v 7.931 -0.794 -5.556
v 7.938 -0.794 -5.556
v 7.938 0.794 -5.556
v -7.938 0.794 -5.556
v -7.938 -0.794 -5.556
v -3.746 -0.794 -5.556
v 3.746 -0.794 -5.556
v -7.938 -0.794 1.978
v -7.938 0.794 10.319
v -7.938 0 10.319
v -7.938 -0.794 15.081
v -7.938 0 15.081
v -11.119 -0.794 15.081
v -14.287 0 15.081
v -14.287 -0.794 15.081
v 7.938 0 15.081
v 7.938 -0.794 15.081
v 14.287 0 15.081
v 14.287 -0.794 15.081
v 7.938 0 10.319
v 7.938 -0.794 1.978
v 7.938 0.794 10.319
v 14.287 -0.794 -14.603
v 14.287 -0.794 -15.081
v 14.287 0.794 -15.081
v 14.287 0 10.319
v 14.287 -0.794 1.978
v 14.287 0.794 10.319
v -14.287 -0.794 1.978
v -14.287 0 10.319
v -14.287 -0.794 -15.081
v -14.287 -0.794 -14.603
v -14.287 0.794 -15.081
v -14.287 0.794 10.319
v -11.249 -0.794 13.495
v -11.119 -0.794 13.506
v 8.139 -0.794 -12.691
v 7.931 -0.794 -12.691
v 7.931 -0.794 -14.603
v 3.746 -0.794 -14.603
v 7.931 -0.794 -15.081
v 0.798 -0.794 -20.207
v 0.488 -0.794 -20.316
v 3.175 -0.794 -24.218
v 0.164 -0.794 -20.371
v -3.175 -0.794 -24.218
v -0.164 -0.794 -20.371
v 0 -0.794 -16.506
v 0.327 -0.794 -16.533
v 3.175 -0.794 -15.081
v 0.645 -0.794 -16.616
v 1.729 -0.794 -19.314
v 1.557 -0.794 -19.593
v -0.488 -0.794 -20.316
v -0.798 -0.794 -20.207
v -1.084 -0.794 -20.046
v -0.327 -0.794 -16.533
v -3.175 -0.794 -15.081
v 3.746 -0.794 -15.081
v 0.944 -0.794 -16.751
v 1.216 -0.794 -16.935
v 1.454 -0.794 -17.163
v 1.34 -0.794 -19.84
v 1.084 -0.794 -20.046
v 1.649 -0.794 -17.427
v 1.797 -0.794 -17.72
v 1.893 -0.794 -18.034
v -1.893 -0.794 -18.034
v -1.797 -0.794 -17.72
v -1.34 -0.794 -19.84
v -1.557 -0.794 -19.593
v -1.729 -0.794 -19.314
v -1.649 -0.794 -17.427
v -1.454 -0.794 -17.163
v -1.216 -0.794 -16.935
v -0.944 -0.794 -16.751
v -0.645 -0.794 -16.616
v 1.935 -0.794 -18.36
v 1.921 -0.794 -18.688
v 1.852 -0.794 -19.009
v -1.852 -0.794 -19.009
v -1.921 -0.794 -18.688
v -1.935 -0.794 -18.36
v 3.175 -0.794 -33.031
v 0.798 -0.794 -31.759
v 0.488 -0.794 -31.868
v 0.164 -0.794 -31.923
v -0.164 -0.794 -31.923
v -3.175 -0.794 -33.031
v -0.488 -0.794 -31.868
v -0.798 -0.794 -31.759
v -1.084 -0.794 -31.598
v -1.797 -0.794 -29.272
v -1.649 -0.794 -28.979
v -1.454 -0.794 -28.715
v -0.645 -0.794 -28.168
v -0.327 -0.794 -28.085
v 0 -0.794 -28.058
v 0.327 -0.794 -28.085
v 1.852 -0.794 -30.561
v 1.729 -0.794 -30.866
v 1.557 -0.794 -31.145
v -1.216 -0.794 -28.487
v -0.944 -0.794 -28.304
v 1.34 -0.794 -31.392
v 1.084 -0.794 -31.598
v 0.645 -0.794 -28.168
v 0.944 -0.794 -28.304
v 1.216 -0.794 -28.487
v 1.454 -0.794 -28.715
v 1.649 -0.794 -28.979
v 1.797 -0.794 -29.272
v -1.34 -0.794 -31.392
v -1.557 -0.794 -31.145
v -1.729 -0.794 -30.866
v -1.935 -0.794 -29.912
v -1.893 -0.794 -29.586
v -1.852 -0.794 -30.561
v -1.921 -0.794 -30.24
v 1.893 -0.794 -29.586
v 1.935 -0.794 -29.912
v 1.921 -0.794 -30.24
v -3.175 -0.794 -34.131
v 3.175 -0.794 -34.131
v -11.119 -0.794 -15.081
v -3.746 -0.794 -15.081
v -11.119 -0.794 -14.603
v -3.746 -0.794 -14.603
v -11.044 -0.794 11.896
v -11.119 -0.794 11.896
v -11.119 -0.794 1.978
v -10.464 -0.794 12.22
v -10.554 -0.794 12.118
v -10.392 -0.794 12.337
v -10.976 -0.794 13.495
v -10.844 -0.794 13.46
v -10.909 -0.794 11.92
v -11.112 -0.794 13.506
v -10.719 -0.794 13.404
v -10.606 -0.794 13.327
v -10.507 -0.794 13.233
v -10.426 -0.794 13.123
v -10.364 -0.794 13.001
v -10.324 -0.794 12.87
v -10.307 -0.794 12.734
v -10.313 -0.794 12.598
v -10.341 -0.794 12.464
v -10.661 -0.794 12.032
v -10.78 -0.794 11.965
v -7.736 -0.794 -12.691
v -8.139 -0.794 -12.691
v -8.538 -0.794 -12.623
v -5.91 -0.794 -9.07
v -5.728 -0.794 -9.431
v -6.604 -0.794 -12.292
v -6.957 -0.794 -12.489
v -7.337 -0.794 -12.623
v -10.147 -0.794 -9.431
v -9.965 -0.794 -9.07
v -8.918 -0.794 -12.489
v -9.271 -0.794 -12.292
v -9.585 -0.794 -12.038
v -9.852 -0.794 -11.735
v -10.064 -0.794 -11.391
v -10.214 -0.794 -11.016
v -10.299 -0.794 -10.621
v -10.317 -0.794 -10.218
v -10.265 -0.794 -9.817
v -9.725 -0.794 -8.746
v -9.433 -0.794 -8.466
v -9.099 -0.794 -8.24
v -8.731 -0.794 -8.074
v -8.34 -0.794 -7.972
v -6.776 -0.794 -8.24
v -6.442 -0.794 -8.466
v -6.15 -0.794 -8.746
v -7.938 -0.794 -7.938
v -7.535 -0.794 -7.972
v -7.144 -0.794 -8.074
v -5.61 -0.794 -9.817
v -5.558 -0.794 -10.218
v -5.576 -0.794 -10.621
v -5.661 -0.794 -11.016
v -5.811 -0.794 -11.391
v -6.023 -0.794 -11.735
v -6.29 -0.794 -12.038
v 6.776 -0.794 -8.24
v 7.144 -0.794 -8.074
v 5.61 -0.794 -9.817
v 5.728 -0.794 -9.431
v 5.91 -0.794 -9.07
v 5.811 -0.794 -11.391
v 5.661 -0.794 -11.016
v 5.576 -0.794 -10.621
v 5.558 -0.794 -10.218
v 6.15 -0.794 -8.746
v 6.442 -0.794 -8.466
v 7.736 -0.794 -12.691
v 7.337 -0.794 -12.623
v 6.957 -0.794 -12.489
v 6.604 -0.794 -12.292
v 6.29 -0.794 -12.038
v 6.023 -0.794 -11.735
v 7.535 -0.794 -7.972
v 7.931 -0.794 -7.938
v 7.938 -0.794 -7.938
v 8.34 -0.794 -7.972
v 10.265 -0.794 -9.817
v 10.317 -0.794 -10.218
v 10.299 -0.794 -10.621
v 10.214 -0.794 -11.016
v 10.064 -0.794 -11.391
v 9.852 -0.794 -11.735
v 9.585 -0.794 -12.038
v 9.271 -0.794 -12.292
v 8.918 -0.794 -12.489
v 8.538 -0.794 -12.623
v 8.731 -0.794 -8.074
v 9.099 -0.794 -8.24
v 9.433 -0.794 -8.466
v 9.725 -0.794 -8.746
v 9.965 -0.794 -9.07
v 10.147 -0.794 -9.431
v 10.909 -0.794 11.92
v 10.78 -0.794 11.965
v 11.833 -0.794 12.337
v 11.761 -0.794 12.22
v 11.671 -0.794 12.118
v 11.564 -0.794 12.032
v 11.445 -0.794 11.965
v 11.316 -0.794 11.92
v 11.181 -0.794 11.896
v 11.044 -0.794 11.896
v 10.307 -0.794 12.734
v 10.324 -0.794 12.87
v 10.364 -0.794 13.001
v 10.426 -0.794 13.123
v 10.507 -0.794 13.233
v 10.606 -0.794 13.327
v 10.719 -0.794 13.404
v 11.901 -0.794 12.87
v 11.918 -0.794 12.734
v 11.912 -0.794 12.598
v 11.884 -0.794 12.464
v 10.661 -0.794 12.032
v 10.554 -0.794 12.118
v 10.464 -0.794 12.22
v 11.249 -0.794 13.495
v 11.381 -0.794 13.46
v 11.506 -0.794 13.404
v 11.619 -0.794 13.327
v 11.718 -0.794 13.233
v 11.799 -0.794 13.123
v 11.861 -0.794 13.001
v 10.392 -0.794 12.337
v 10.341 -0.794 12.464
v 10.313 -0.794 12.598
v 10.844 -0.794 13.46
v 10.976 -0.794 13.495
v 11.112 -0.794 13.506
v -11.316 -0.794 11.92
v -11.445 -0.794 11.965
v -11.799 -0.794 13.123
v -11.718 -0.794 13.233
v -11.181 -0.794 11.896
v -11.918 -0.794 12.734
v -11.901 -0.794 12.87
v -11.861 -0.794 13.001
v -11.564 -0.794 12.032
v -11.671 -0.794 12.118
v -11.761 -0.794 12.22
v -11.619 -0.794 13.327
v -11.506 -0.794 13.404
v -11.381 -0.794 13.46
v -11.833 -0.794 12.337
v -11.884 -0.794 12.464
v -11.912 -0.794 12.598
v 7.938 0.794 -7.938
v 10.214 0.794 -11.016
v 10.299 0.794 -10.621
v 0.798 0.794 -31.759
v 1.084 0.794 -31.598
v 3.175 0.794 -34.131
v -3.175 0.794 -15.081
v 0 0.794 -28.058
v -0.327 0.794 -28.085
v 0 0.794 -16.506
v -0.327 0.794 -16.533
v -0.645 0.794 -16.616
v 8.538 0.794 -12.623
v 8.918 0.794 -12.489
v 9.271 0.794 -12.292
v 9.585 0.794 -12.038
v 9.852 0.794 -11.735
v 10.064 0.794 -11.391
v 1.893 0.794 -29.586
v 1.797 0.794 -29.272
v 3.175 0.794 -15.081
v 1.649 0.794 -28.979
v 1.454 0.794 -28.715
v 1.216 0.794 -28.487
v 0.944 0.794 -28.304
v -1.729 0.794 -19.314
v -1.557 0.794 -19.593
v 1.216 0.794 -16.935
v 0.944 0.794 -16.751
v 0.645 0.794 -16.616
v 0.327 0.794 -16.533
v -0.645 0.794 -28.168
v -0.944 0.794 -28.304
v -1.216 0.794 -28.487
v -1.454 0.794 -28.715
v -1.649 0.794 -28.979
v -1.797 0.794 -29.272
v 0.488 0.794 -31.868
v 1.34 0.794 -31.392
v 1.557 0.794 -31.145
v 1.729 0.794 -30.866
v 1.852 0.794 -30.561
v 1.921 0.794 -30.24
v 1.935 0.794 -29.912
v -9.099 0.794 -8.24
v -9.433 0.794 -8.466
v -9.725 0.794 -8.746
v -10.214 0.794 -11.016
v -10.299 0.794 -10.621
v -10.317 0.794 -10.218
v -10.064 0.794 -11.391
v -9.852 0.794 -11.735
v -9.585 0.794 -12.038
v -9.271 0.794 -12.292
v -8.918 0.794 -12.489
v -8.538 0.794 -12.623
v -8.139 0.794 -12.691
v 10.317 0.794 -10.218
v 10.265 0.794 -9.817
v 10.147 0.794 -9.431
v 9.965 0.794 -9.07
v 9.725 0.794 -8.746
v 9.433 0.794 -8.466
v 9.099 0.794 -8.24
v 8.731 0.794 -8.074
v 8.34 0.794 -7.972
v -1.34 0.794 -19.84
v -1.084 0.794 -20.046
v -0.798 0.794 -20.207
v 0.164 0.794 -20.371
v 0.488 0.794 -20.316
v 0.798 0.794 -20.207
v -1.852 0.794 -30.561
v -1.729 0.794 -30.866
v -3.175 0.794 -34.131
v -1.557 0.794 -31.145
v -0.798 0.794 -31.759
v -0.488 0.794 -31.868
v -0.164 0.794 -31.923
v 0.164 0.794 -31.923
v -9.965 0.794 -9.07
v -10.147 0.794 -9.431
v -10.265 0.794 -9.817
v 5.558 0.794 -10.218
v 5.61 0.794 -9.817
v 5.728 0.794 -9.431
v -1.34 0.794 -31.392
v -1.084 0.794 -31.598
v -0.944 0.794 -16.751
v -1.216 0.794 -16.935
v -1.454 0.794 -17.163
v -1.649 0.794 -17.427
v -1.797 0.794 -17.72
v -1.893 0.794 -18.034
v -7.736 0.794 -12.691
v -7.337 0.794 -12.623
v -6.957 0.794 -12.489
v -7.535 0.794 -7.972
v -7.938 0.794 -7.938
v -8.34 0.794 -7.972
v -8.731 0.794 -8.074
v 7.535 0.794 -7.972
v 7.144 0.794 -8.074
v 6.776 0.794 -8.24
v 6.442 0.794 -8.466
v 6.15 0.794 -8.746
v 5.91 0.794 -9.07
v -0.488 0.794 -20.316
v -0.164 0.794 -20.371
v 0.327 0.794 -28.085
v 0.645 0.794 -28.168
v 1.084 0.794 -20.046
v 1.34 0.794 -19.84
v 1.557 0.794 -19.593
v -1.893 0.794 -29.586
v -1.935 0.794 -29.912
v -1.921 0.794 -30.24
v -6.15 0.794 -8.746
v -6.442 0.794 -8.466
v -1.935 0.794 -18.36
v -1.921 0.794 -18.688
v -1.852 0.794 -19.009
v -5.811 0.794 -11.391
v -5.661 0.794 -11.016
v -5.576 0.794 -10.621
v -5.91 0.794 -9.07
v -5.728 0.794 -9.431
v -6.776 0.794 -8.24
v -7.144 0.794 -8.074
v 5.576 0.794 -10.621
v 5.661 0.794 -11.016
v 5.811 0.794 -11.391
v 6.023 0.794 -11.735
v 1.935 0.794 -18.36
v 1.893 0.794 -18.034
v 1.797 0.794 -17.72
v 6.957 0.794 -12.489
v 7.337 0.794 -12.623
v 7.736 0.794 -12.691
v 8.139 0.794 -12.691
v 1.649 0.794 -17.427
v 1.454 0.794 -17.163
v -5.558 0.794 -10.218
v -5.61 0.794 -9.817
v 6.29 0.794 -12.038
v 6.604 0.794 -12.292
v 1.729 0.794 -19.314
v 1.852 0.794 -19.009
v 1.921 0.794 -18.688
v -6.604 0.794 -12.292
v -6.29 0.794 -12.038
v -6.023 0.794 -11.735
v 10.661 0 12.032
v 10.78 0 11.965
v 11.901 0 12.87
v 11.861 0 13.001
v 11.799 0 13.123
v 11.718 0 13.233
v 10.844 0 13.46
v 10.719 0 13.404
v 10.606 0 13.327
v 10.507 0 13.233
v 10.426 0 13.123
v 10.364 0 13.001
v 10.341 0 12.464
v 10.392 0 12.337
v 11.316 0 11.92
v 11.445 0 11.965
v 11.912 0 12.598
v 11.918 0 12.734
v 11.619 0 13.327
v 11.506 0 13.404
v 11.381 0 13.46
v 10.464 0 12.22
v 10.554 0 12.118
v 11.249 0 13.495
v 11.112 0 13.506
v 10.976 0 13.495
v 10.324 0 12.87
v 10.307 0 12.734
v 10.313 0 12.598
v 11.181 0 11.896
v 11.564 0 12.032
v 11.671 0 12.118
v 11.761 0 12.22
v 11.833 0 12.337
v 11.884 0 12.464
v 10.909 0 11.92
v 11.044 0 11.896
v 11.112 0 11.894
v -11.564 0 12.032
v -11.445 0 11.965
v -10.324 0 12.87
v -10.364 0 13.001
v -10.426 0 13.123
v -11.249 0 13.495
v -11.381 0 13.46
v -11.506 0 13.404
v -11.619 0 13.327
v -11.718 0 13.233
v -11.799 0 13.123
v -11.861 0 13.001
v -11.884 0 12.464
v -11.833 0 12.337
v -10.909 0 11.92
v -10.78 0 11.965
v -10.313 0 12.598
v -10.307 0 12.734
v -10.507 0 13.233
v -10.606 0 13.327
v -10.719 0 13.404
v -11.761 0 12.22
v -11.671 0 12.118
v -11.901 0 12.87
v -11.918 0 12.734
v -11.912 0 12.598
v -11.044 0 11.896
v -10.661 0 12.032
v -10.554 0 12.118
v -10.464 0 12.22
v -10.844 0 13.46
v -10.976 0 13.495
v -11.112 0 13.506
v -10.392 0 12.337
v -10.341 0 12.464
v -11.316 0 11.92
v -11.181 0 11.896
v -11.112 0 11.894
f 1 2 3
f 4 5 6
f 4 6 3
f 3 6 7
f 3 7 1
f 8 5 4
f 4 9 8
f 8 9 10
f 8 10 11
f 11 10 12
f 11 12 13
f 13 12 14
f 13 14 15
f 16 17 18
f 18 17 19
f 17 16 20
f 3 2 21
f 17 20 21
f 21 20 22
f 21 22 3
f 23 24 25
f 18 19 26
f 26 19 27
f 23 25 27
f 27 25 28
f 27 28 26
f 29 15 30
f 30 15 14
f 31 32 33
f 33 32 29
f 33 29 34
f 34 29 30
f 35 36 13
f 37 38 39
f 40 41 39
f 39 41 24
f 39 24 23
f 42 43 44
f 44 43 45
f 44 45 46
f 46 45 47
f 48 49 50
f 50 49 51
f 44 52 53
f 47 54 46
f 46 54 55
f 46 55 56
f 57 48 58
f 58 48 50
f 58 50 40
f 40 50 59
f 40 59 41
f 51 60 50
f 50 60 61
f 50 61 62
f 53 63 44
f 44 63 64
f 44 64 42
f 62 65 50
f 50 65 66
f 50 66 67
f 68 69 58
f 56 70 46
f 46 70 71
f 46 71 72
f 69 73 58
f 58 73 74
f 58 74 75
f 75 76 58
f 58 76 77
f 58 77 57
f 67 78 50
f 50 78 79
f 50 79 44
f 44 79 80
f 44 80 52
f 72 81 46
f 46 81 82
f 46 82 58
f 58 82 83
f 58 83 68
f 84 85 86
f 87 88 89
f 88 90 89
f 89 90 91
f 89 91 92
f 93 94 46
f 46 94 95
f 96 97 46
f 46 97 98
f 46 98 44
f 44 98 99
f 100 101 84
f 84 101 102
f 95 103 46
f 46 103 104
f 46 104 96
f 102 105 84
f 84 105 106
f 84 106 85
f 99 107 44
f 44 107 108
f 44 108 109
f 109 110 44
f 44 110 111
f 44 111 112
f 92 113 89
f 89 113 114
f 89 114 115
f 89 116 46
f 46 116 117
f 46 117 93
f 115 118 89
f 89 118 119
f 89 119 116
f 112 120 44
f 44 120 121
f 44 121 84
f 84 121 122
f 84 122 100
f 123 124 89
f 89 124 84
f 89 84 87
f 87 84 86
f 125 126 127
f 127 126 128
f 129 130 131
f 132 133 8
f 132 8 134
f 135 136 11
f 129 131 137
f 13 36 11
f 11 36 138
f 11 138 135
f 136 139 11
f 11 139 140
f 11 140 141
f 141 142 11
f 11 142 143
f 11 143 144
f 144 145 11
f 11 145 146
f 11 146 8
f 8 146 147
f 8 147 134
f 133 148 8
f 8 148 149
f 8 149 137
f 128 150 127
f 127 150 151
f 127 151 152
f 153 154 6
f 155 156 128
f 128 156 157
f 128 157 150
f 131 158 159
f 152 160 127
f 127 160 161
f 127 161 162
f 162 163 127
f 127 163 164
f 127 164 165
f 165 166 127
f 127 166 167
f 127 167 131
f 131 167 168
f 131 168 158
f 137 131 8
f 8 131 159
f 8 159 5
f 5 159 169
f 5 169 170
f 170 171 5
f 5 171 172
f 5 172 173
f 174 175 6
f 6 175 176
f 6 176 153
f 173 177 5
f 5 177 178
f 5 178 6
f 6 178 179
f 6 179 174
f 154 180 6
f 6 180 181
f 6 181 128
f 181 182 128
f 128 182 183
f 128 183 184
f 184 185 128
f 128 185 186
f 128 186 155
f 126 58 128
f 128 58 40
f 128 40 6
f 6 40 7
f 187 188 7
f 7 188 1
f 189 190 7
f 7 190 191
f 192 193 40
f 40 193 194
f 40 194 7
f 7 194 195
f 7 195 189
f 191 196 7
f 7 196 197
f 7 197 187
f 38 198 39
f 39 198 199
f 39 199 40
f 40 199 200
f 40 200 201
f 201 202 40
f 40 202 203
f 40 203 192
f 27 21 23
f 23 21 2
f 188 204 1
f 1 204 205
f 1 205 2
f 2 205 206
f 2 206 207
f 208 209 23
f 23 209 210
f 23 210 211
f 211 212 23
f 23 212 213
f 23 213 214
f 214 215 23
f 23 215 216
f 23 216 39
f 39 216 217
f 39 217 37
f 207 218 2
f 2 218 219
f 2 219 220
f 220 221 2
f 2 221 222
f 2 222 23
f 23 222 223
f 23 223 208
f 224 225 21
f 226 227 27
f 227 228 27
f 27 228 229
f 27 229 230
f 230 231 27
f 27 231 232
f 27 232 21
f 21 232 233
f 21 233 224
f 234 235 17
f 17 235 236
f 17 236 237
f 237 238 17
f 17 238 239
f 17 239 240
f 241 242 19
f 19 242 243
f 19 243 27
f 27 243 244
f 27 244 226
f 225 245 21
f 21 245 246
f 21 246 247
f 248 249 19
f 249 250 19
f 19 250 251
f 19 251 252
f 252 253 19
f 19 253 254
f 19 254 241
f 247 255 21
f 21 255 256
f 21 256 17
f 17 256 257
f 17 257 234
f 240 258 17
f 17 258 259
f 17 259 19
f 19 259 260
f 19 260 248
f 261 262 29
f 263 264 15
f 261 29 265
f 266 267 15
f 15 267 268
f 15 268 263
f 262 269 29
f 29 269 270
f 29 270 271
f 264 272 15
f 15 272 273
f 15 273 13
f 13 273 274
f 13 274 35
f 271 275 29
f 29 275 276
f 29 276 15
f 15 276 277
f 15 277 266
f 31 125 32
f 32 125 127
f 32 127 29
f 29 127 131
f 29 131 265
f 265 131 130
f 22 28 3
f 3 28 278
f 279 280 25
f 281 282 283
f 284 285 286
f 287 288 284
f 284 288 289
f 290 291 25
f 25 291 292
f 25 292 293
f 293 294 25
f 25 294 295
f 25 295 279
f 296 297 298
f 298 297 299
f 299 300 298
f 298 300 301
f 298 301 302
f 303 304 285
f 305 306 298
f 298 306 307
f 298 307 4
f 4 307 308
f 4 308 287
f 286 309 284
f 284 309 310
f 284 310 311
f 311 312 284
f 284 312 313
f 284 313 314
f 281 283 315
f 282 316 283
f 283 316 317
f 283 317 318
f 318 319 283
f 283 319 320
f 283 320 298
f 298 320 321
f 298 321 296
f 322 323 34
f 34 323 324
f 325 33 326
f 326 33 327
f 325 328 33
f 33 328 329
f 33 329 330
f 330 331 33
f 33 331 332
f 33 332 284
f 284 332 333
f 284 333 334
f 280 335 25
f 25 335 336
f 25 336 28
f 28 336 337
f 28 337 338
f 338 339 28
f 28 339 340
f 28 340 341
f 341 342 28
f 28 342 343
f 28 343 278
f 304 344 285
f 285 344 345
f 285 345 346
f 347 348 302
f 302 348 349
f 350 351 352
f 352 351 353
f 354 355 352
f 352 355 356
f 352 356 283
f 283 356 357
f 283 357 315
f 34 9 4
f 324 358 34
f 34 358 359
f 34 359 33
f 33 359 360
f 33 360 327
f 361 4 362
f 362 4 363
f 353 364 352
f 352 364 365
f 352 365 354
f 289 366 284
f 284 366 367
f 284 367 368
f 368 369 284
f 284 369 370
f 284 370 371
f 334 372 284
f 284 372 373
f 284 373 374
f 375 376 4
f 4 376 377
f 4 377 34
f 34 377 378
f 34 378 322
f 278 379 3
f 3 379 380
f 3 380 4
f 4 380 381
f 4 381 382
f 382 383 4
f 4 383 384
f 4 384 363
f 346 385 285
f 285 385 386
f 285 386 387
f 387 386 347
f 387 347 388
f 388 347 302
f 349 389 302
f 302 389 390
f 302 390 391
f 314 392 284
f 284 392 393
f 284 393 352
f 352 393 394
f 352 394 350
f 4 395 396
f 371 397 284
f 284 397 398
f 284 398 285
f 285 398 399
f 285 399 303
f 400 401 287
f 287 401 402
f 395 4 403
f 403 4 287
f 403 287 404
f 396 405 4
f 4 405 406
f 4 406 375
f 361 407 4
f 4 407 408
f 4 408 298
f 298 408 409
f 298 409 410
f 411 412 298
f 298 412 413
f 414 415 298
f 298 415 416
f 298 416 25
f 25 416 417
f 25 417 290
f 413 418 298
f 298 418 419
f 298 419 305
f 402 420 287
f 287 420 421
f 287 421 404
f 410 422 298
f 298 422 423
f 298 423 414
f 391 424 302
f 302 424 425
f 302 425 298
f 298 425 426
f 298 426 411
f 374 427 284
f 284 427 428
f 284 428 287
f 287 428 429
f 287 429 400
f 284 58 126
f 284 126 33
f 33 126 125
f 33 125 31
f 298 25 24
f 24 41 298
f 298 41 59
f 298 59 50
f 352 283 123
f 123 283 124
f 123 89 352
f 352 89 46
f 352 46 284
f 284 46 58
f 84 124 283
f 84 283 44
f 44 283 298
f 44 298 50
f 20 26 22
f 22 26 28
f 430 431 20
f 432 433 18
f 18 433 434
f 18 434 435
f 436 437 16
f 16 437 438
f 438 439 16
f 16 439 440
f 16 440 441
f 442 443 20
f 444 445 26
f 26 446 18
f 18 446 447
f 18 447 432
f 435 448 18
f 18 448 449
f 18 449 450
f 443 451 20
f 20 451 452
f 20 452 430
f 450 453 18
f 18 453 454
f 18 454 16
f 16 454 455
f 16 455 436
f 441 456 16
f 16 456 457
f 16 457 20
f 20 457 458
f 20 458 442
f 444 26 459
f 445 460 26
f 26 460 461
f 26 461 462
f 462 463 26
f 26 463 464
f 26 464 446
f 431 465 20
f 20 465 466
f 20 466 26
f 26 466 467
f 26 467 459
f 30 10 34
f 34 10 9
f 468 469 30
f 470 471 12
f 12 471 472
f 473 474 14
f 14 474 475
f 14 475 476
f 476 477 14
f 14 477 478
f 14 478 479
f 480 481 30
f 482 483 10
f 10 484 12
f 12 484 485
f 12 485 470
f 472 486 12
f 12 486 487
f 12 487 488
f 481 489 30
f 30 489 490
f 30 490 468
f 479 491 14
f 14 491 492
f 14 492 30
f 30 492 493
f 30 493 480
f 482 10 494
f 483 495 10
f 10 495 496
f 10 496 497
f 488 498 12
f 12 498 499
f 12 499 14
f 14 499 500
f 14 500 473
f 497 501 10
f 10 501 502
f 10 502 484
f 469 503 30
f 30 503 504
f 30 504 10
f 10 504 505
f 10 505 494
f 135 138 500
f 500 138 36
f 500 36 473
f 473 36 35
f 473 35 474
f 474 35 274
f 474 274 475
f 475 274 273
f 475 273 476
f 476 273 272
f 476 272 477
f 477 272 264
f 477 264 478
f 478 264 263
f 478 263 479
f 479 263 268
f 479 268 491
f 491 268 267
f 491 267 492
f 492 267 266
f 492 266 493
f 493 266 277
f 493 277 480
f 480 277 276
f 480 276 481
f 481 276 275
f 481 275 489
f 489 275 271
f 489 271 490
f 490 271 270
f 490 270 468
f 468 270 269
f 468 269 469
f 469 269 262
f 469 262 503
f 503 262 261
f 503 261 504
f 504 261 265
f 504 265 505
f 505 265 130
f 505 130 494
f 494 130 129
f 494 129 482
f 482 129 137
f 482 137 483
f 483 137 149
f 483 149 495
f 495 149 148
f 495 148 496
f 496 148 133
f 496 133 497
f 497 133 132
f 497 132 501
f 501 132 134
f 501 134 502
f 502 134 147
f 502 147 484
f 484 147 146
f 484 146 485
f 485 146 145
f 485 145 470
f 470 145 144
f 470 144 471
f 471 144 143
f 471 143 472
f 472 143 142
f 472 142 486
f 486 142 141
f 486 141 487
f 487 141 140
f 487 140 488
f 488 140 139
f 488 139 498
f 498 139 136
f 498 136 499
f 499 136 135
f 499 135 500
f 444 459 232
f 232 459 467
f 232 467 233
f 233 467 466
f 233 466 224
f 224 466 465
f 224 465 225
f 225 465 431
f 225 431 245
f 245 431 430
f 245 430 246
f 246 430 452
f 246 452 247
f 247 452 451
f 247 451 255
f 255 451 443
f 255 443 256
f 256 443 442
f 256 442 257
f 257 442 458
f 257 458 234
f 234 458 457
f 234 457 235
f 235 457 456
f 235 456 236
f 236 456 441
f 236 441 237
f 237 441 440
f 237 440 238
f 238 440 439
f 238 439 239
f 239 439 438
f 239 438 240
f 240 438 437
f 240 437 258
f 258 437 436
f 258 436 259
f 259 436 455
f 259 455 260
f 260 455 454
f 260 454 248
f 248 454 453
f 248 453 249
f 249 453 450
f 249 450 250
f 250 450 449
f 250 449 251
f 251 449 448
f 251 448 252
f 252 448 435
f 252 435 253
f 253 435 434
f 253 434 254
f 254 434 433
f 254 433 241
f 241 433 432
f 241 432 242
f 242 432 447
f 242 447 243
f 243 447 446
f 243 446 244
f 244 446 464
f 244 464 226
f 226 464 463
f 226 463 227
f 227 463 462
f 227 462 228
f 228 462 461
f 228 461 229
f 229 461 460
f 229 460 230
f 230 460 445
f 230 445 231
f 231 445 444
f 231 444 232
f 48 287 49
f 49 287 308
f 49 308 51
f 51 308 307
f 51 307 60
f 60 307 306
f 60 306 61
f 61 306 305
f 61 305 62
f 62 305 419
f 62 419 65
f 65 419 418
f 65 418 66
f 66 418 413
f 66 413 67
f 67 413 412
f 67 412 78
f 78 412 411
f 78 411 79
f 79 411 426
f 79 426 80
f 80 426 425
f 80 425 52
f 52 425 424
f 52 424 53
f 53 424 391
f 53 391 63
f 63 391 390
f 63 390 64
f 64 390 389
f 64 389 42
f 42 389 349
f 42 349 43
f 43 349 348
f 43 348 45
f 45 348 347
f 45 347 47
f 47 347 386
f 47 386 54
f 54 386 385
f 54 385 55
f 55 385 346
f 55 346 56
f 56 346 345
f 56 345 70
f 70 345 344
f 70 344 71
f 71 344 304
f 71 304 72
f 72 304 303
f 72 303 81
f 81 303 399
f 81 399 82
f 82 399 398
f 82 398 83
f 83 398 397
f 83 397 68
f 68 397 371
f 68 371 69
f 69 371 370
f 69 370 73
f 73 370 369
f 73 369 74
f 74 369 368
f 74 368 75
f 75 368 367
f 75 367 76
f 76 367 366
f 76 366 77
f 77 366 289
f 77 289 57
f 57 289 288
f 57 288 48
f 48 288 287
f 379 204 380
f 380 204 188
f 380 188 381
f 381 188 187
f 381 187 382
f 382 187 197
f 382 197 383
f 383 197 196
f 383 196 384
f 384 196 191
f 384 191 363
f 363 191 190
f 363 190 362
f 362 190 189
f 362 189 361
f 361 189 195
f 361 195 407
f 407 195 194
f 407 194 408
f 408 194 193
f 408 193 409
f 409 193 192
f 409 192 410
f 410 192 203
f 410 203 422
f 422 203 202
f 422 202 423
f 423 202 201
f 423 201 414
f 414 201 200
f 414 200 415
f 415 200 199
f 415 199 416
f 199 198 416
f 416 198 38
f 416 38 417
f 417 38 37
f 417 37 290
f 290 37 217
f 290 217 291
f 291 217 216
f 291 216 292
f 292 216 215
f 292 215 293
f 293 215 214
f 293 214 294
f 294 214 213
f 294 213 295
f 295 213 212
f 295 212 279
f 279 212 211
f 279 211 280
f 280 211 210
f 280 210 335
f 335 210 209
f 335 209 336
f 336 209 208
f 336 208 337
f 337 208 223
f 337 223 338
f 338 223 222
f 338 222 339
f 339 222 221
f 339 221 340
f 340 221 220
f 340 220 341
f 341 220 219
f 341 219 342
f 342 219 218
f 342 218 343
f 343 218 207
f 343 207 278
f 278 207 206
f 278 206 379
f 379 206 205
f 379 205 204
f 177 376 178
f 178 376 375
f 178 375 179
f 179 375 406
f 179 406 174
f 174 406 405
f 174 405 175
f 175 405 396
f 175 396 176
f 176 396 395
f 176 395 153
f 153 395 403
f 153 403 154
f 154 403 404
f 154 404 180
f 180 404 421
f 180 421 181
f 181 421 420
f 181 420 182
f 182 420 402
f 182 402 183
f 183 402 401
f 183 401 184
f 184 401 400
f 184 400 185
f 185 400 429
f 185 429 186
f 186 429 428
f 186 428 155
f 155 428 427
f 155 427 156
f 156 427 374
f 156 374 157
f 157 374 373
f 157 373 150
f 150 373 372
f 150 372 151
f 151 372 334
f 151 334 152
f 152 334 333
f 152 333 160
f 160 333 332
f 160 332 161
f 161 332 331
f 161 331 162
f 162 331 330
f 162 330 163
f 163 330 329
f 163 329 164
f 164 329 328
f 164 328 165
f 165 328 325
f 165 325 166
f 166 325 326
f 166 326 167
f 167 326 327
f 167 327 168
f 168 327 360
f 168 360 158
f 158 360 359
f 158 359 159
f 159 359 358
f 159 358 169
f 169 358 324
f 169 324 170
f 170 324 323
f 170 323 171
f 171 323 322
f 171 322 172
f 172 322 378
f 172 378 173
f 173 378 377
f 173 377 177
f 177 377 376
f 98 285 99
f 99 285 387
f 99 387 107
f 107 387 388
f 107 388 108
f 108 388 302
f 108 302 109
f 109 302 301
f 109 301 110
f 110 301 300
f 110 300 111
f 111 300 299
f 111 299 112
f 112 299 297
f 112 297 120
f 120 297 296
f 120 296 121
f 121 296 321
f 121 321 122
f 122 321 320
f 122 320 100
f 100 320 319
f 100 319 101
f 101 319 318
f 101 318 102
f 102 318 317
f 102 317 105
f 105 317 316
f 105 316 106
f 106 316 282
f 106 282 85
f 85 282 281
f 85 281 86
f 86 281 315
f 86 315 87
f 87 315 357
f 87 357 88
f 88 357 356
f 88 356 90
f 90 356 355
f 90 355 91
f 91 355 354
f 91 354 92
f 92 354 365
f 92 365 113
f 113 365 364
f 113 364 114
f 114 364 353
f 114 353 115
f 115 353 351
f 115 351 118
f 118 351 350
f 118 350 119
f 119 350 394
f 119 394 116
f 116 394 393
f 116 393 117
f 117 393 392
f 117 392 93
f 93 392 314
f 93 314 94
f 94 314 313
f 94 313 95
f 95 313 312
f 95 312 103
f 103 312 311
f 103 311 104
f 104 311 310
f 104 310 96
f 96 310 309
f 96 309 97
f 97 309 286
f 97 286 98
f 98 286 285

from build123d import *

# Parameters (mm, degrees)
SKETCH1_W           = 6.35
SKETCH1_H           = 19.05
BOSS_EXTRUDE1_DEPTH = 0.79375
SKETCH2_W           = 6.35
SKETCH2_H           = 4.7625
CUT_EXTRUDE1_DEPTH  = 0.79375
SKETCH3_R           = 0.80645
SKETCH3_R_2         = 2.38125
SKETCH3_R_3         = 1.936420783
CUT_EXTRUDE2_DEPTH  = 1.5875


with BuildPart() as part:
    # Sketch1 → Boss-Extrude1 (new, symmetric)
    with BuildSketch(Plane(origin=(0, 0, 0), x_dir=(1, 0, 0), z_dir=(0, 1, 0))):
        Polygon((-3.175, 15.08125), (-14.2875, 15.08125), (-14.2875, -15.08125), (-7.9375, -15.08125), (-7.9375, 5.55625), (7.9375, 5.55625), (7.9375, -15.08125), (14.2875, -15.08125), (14.2875, 15.08125), (3.175, 15.08125), align=None)
        with Locations((0, 24.60625)):
            Rectangle(SKETCH1_W, SKETCH1_H)
    extrude(amount=BOSS_EXTRUDE1_DEPTH, both=True)

    # Sketch2 → Cut-Extrude1 (cut)
    with BuildSketch(Plane(origin=(0, 0.79375, 0), x_dir=(1, 0, 0), z_dir=(0, 1, 0))):
        with Locations((-11.1125, -12.7)):
            Rectangle(SKETCH2_W, SKETCH2_H)
        with Locations((11.1125, -12.7)):
            Rectangle(SKETCH2_W, SKETCH2_H)
    extrude(amount=-CUT_EXTRUDE1_DEPTH, mode=Mode.SUBTRACT)

    # Sketch3 → Cut-Extrude2 (cut)
    with BuildSketch(Plane(origin=(0, 0.79375, 0), x_dir=(1, 0, 0), z_dir=(0, 1, 0))):
        with Locations(Location((-11.1125, -12.7, 0), (0, 0, 270))):
            Circle(SKETCH3_R)
        with Locations(Location((-7.9375, 10.31875, 0), (0, 0, 270))):
            Circle(SKETCH3_R_2)
        with Locations(Location((11.1125, -12.7, 0), (0, 0, 270))):
            Circle(SKETCH3_R)
        with Locations(Location((7.9375, 10.31875, 0), (0, 0, 270))):
            Circle(SKETCH3_R_2)
        with Locations(Location((0, 18.44201602, 0), (0, 0, 270))):
            Circle(SKETCH3_R_3)
        with Locations(Location((0, 29.994029814, 0), (0, 0, 270))):
            Circle(SKETCH3_R_3)
    extrude(amount=-CUT_EXTRUDE2_DEPTH, mode=Mode.SUBTRACT)


solid = part.part
